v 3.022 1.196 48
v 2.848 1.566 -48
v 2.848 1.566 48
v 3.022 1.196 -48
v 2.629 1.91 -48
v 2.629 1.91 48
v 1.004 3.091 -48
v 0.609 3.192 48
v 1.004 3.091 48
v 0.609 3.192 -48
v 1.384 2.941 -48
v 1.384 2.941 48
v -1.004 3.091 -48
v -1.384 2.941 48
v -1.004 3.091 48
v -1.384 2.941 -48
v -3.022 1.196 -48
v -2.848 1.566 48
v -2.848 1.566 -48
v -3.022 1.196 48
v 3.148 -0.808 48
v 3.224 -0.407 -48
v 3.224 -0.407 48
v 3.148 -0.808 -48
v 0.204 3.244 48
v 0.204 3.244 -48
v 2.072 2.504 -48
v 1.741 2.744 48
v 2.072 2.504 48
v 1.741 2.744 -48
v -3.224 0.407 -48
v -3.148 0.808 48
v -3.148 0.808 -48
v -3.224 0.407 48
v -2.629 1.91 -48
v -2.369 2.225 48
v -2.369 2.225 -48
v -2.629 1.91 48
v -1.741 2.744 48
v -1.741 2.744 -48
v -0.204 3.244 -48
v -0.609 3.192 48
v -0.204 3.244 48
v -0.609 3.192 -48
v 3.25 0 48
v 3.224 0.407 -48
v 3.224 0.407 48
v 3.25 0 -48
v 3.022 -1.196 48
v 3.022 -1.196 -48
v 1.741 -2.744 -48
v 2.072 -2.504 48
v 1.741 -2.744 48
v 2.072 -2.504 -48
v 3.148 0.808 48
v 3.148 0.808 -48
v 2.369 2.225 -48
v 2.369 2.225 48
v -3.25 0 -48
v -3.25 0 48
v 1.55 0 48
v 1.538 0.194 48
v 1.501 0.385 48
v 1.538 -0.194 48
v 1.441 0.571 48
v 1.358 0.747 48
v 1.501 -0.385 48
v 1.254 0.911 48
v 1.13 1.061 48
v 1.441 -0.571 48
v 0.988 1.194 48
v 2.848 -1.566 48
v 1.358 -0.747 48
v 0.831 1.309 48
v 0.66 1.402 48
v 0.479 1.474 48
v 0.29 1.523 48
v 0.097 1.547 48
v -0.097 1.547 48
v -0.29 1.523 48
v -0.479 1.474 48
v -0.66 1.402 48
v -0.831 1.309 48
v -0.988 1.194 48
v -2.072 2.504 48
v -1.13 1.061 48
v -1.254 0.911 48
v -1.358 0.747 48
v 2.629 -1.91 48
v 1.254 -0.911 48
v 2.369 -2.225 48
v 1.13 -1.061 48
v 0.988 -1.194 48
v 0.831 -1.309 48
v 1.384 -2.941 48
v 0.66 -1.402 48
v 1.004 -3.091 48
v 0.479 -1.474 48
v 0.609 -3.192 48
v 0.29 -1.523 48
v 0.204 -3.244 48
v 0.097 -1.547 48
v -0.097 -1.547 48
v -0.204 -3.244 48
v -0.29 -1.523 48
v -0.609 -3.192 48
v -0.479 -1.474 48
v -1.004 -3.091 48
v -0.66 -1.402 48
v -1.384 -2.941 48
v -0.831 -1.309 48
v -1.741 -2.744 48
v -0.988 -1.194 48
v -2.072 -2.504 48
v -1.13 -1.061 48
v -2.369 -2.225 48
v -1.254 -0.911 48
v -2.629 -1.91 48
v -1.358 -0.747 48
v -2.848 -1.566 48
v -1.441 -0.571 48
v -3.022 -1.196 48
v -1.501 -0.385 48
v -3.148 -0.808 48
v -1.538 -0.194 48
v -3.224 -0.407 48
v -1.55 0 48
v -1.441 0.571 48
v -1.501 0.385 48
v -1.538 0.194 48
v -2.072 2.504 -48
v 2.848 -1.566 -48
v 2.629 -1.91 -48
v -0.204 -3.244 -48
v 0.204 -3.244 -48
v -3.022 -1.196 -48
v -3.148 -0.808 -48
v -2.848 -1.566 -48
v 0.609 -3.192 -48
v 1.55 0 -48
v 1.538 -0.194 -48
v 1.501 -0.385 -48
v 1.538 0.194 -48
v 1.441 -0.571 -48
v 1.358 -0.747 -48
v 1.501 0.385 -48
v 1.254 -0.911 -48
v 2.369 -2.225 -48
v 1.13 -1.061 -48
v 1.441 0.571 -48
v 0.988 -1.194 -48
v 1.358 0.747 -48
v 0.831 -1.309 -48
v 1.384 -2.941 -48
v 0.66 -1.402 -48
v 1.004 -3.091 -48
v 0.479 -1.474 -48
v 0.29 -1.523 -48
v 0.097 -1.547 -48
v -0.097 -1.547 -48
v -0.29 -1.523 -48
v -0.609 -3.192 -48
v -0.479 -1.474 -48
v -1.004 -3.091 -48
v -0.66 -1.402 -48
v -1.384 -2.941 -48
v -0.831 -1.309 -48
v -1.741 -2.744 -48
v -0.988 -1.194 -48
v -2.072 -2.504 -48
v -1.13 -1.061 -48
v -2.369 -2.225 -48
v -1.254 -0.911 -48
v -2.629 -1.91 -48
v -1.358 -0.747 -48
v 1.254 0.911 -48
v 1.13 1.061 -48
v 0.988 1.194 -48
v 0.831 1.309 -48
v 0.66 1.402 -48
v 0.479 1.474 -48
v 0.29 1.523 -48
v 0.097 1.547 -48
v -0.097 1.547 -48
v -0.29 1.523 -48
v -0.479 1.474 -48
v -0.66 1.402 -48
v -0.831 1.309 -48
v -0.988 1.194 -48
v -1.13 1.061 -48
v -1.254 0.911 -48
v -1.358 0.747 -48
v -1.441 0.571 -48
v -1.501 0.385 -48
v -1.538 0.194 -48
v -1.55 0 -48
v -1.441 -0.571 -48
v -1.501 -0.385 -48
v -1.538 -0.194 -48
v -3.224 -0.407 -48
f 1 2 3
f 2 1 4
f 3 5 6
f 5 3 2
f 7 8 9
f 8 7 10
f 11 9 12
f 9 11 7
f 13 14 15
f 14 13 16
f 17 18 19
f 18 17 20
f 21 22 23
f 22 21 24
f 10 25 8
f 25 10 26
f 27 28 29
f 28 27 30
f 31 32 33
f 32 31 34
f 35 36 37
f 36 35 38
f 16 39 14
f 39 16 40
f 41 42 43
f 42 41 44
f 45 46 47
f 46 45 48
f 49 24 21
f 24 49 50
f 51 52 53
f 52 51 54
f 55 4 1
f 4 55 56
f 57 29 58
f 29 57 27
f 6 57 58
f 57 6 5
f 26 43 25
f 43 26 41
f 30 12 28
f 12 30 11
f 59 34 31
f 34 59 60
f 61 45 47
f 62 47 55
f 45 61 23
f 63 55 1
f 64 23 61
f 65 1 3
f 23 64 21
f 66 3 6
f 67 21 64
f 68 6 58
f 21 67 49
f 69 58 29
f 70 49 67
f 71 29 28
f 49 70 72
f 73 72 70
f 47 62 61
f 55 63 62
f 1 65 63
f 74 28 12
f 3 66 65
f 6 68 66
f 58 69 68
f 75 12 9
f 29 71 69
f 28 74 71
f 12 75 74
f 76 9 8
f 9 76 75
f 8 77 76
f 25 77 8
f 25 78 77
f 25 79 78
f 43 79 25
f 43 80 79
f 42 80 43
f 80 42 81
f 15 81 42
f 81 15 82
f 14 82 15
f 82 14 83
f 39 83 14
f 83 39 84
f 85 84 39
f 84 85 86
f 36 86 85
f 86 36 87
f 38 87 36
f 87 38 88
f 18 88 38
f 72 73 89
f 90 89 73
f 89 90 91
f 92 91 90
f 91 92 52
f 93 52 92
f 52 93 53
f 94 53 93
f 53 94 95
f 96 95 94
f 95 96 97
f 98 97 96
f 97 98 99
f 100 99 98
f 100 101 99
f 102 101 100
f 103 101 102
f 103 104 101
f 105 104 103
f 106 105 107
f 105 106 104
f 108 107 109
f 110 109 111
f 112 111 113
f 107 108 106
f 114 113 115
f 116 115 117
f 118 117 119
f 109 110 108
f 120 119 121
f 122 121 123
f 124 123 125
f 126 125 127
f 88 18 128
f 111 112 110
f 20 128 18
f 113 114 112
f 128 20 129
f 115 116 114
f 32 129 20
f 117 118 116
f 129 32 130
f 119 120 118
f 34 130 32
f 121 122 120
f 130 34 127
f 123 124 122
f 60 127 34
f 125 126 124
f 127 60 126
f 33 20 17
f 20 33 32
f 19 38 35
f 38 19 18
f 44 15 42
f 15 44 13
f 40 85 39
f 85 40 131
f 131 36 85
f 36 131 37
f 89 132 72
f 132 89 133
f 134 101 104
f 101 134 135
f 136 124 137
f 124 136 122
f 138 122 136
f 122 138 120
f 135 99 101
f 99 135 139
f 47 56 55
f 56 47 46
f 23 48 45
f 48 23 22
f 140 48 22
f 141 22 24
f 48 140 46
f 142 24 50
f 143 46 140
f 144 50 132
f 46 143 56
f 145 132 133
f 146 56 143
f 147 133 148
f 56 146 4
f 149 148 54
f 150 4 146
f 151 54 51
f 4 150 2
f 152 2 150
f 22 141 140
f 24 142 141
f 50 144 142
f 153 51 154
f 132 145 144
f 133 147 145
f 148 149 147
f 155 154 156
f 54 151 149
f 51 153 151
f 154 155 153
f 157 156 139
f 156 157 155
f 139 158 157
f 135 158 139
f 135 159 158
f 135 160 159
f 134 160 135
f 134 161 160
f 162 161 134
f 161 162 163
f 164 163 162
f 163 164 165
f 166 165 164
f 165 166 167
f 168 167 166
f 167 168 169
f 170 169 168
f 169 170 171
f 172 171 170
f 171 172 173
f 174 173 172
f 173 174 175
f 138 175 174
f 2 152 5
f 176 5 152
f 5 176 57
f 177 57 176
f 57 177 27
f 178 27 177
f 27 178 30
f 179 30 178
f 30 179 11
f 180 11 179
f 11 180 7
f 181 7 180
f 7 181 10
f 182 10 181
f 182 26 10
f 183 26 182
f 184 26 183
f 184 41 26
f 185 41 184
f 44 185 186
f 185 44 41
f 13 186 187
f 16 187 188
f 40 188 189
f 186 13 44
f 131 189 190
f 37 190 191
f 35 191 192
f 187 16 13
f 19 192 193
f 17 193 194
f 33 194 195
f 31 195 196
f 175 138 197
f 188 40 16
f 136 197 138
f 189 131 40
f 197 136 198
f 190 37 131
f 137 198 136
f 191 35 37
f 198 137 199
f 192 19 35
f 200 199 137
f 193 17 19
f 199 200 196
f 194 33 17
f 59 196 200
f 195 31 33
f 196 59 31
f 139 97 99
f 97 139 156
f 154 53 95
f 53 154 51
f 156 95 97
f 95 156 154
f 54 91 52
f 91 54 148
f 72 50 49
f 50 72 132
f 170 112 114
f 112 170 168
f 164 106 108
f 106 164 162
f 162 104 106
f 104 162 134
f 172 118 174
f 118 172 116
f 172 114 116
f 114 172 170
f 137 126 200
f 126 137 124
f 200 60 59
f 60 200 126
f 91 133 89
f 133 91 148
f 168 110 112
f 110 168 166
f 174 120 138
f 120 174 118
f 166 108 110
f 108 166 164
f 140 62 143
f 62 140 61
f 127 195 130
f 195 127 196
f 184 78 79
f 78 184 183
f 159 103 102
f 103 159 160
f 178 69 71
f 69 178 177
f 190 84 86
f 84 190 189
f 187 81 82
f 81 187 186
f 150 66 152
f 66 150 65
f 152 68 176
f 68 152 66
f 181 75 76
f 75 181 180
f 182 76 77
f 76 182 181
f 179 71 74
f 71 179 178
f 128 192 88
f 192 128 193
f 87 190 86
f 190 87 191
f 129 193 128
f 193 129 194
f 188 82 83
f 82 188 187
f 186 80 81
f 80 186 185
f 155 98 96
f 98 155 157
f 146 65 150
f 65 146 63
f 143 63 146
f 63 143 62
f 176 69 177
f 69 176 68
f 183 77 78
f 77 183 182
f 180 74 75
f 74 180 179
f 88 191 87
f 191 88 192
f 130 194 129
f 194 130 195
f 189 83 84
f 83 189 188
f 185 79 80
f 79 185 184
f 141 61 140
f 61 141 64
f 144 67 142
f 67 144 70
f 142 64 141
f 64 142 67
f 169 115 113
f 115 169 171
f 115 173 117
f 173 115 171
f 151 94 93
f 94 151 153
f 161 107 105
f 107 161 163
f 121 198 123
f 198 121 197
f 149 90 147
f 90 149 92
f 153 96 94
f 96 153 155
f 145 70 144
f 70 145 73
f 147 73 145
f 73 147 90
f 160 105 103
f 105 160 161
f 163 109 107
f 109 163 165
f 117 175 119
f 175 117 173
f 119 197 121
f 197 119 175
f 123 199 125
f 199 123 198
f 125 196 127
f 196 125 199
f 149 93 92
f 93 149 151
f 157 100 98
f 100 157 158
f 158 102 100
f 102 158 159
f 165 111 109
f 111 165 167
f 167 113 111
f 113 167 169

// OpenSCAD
$fn = 50;


difference() {
	union() {
		translate(v = [0, 0, -48.0000000000]) {
			cylinder(h = 96, r = 3.2500000000);
		}
	}
	union() {
		translate(v = [0, 0, -100.0000000000]) {
			cylinder(h = 200, r = 1.5500000000);
		}
	}
}
